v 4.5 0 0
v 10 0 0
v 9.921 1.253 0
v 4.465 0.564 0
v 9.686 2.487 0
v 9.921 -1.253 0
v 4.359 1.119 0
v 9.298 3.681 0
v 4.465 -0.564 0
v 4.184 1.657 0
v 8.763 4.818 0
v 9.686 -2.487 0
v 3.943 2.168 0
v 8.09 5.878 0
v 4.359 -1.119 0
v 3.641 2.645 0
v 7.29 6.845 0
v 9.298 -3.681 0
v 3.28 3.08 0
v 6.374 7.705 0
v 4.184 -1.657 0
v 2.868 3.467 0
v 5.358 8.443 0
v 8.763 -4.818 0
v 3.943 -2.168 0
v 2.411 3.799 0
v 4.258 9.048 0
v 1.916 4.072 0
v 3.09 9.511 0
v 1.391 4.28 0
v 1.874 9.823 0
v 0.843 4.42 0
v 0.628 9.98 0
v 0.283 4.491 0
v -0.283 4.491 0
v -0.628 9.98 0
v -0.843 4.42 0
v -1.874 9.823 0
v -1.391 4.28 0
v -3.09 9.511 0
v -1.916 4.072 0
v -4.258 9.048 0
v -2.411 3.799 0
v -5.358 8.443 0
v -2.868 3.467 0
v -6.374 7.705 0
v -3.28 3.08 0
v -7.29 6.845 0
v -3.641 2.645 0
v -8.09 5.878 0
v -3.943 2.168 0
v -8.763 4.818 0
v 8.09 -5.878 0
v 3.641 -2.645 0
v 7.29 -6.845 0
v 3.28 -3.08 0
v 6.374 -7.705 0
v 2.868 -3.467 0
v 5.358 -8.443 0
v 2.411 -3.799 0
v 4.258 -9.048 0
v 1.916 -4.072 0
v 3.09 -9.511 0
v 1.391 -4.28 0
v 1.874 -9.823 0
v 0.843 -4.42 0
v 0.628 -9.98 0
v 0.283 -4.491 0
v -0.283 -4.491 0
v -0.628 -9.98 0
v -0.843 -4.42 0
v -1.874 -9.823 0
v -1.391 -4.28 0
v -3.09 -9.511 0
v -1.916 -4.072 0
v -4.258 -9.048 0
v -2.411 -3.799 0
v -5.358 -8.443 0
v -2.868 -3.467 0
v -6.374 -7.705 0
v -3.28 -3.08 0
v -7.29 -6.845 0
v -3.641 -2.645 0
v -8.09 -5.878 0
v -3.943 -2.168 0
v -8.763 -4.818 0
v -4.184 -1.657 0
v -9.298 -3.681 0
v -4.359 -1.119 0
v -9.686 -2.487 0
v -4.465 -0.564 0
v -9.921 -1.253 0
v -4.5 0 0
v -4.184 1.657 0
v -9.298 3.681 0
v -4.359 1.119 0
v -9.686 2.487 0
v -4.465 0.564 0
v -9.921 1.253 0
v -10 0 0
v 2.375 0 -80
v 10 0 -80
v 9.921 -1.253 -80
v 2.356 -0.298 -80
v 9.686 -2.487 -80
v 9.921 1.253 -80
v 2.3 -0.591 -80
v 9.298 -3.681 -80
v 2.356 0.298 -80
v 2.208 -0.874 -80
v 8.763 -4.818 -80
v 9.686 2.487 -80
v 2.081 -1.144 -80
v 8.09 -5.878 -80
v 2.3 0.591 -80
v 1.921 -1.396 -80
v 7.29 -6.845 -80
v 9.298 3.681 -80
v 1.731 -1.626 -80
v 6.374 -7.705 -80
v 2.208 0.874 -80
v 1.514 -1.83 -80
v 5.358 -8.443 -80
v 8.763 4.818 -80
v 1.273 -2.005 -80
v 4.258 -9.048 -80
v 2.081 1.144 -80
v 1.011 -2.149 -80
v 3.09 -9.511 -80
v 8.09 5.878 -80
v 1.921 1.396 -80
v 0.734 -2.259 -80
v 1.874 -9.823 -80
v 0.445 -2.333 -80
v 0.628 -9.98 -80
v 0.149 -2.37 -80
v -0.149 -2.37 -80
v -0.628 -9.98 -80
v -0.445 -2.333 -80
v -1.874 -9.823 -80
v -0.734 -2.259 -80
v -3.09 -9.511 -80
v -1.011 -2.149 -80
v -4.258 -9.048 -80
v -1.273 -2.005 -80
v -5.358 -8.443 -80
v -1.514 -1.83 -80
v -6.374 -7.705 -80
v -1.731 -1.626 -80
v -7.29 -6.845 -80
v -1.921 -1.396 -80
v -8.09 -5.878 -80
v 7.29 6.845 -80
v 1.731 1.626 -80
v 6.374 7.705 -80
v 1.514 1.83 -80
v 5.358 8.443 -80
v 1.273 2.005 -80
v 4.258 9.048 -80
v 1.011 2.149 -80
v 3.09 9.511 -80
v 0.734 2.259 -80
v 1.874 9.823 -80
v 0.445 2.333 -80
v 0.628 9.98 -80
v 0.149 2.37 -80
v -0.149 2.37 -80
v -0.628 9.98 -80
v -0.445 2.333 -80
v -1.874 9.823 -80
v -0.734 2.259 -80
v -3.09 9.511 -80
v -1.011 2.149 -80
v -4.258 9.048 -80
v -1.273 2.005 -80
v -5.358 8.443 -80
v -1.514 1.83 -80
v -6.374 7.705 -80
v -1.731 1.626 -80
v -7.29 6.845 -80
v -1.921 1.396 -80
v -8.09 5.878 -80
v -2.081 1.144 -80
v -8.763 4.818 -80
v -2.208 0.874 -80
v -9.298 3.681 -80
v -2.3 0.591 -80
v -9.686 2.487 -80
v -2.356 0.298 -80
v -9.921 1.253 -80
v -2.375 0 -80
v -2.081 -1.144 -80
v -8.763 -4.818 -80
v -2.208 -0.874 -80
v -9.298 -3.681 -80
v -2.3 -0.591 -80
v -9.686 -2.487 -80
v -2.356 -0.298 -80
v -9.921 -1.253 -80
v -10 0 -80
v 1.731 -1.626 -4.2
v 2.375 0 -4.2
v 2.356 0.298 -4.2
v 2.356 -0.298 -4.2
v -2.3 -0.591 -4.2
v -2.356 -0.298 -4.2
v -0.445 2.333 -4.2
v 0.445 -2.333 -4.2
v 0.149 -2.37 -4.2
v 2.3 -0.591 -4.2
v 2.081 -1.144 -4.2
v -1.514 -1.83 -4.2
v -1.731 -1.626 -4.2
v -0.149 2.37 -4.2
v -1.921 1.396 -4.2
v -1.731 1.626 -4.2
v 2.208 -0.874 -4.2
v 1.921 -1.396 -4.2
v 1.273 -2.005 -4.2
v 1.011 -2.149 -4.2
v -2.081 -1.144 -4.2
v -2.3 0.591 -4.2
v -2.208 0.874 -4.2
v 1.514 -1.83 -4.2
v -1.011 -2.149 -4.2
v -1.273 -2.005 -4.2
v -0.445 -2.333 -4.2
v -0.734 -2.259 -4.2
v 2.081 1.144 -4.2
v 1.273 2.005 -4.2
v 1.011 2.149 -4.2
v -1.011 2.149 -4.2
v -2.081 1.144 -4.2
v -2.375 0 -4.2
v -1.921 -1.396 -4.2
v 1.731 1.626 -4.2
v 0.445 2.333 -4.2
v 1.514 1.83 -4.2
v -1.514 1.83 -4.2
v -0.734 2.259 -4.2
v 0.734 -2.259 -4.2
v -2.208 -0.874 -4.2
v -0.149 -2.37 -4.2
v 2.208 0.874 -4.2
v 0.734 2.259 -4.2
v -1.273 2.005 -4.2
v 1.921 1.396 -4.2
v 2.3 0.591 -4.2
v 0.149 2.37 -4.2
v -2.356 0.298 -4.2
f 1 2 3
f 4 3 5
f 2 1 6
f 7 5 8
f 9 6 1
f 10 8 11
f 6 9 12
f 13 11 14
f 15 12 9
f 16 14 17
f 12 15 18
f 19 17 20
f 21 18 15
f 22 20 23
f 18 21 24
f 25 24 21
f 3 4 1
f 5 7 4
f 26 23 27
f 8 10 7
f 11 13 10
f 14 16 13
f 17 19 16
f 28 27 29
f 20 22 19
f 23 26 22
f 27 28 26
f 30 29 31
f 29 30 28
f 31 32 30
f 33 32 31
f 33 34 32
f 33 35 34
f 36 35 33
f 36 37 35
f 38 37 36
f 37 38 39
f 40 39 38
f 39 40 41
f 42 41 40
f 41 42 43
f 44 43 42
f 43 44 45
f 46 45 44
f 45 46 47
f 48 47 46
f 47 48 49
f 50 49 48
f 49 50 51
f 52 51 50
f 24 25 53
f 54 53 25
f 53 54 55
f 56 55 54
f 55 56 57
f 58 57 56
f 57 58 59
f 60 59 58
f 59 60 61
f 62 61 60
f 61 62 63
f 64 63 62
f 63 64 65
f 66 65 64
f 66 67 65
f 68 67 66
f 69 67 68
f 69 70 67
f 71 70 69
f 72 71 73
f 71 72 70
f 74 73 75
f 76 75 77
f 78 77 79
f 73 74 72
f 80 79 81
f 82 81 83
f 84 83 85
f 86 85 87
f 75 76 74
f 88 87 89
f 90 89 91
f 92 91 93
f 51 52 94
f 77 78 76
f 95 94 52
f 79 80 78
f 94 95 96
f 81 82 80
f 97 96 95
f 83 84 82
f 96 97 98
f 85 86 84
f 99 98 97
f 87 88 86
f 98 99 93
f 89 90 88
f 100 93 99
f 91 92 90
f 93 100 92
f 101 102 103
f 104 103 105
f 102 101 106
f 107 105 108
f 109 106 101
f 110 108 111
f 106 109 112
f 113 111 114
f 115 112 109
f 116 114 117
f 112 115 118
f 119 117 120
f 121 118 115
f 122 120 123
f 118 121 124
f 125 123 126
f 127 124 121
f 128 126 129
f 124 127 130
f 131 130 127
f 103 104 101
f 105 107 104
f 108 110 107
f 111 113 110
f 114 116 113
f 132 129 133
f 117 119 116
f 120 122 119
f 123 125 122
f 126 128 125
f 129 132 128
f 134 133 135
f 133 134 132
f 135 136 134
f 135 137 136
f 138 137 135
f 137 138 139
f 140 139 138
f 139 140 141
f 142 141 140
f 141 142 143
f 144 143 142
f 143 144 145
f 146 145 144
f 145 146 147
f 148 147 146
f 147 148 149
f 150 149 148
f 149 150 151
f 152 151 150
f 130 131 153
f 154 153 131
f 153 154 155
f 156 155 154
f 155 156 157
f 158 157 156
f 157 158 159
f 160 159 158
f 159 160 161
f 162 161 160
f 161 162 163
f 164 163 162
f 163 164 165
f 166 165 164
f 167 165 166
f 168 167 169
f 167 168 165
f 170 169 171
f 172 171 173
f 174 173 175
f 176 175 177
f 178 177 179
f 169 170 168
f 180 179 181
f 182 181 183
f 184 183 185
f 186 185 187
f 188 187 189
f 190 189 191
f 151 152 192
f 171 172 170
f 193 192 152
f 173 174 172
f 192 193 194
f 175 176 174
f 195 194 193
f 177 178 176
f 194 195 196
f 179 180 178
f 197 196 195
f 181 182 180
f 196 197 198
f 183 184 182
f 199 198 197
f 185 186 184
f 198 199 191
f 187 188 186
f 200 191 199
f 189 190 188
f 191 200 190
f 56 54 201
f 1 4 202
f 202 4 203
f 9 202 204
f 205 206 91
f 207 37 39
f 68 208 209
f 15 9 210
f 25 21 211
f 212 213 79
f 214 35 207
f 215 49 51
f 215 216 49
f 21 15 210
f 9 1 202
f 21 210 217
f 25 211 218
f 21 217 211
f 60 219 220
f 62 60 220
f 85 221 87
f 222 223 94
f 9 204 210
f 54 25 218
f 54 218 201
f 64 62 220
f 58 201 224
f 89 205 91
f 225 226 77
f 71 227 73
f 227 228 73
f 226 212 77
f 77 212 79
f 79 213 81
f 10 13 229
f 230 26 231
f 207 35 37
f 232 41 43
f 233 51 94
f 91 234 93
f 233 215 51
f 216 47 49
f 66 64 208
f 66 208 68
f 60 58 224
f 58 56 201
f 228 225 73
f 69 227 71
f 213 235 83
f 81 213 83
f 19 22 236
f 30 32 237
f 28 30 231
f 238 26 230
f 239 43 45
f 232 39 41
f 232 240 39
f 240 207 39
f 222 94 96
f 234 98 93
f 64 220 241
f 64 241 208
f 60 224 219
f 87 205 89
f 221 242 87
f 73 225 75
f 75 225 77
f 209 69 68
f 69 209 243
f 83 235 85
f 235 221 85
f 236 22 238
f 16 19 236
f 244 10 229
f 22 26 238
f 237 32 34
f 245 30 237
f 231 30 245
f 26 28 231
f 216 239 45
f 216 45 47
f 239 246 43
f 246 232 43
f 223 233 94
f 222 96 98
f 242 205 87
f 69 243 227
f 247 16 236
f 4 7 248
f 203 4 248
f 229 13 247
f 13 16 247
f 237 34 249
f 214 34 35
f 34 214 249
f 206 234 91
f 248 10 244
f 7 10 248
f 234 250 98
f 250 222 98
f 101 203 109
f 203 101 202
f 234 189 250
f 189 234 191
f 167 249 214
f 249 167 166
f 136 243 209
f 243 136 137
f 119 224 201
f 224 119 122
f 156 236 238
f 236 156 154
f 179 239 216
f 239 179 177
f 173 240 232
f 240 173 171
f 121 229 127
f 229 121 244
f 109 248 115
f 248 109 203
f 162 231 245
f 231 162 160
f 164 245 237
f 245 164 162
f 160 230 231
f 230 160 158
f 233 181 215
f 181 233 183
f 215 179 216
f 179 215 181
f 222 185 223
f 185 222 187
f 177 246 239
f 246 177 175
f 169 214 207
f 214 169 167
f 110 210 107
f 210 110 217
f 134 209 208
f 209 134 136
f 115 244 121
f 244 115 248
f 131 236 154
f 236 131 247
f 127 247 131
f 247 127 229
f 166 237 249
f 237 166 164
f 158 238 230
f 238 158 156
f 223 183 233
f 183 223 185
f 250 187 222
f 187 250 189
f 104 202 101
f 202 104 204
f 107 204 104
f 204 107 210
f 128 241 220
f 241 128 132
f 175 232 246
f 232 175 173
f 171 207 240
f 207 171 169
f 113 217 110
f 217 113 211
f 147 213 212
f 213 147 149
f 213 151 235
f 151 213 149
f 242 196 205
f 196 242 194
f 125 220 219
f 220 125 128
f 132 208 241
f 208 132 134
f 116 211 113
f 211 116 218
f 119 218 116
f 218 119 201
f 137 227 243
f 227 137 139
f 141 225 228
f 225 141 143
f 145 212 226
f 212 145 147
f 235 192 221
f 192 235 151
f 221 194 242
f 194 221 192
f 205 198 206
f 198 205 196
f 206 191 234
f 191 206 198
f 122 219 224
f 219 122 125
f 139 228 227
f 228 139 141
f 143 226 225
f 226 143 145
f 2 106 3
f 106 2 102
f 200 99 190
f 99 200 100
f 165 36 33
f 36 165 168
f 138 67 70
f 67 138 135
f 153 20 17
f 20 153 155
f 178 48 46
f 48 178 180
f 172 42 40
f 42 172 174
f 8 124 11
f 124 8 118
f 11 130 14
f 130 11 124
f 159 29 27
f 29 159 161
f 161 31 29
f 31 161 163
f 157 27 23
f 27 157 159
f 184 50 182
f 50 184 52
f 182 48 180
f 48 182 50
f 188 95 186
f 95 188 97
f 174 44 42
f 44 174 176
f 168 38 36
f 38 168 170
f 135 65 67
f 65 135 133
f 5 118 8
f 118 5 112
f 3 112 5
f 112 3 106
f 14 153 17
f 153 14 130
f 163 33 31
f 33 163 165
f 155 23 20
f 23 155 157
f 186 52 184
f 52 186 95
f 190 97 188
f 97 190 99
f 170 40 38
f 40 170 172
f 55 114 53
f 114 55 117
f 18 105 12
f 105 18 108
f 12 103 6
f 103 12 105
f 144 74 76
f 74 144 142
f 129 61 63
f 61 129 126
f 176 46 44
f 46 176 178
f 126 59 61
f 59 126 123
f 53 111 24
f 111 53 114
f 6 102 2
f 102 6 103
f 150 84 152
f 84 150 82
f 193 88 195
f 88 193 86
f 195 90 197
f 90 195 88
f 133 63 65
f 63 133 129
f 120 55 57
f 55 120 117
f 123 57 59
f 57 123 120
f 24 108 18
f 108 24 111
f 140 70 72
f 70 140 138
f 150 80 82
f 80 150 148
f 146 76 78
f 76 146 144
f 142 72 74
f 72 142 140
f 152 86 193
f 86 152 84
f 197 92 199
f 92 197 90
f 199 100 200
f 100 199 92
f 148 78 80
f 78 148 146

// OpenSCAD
$fn = 50;


difference() {
	union() {
		translate(v = [0, 0, -80.0000000000]) {
			cylinder(h = 80, r = 10.0000000000);
		}
		cylinder(h = 0, r = 16.0000000000);
	}
	union() {
		translate(v = [0, 0, 0]) {
			rotate(a = [0, 0, 0]) {
				difference() {
					union() {
						#translate(v = [0, 0, -80.0000000000]) {
							cylinder(h = 80, r = 2.2500000000);
						}
						#translate(v = [0, 0, -4.2000000000]) {
							cylinder(h = 4.2000000000, r1 = 2.3750000000, r2 = 4.5000000000);
						}
						#translate(v = [0, 0, -80.0000000000]) {
							cylinder(h = 80, r = 2.3750000000);
						}
						#translate(v = [0, 0, -80.0000000000]) {
							cylinder(h = 80, r = 2.2500000000);
						}
					}
					union();
				}
			}
		}
	}
}
